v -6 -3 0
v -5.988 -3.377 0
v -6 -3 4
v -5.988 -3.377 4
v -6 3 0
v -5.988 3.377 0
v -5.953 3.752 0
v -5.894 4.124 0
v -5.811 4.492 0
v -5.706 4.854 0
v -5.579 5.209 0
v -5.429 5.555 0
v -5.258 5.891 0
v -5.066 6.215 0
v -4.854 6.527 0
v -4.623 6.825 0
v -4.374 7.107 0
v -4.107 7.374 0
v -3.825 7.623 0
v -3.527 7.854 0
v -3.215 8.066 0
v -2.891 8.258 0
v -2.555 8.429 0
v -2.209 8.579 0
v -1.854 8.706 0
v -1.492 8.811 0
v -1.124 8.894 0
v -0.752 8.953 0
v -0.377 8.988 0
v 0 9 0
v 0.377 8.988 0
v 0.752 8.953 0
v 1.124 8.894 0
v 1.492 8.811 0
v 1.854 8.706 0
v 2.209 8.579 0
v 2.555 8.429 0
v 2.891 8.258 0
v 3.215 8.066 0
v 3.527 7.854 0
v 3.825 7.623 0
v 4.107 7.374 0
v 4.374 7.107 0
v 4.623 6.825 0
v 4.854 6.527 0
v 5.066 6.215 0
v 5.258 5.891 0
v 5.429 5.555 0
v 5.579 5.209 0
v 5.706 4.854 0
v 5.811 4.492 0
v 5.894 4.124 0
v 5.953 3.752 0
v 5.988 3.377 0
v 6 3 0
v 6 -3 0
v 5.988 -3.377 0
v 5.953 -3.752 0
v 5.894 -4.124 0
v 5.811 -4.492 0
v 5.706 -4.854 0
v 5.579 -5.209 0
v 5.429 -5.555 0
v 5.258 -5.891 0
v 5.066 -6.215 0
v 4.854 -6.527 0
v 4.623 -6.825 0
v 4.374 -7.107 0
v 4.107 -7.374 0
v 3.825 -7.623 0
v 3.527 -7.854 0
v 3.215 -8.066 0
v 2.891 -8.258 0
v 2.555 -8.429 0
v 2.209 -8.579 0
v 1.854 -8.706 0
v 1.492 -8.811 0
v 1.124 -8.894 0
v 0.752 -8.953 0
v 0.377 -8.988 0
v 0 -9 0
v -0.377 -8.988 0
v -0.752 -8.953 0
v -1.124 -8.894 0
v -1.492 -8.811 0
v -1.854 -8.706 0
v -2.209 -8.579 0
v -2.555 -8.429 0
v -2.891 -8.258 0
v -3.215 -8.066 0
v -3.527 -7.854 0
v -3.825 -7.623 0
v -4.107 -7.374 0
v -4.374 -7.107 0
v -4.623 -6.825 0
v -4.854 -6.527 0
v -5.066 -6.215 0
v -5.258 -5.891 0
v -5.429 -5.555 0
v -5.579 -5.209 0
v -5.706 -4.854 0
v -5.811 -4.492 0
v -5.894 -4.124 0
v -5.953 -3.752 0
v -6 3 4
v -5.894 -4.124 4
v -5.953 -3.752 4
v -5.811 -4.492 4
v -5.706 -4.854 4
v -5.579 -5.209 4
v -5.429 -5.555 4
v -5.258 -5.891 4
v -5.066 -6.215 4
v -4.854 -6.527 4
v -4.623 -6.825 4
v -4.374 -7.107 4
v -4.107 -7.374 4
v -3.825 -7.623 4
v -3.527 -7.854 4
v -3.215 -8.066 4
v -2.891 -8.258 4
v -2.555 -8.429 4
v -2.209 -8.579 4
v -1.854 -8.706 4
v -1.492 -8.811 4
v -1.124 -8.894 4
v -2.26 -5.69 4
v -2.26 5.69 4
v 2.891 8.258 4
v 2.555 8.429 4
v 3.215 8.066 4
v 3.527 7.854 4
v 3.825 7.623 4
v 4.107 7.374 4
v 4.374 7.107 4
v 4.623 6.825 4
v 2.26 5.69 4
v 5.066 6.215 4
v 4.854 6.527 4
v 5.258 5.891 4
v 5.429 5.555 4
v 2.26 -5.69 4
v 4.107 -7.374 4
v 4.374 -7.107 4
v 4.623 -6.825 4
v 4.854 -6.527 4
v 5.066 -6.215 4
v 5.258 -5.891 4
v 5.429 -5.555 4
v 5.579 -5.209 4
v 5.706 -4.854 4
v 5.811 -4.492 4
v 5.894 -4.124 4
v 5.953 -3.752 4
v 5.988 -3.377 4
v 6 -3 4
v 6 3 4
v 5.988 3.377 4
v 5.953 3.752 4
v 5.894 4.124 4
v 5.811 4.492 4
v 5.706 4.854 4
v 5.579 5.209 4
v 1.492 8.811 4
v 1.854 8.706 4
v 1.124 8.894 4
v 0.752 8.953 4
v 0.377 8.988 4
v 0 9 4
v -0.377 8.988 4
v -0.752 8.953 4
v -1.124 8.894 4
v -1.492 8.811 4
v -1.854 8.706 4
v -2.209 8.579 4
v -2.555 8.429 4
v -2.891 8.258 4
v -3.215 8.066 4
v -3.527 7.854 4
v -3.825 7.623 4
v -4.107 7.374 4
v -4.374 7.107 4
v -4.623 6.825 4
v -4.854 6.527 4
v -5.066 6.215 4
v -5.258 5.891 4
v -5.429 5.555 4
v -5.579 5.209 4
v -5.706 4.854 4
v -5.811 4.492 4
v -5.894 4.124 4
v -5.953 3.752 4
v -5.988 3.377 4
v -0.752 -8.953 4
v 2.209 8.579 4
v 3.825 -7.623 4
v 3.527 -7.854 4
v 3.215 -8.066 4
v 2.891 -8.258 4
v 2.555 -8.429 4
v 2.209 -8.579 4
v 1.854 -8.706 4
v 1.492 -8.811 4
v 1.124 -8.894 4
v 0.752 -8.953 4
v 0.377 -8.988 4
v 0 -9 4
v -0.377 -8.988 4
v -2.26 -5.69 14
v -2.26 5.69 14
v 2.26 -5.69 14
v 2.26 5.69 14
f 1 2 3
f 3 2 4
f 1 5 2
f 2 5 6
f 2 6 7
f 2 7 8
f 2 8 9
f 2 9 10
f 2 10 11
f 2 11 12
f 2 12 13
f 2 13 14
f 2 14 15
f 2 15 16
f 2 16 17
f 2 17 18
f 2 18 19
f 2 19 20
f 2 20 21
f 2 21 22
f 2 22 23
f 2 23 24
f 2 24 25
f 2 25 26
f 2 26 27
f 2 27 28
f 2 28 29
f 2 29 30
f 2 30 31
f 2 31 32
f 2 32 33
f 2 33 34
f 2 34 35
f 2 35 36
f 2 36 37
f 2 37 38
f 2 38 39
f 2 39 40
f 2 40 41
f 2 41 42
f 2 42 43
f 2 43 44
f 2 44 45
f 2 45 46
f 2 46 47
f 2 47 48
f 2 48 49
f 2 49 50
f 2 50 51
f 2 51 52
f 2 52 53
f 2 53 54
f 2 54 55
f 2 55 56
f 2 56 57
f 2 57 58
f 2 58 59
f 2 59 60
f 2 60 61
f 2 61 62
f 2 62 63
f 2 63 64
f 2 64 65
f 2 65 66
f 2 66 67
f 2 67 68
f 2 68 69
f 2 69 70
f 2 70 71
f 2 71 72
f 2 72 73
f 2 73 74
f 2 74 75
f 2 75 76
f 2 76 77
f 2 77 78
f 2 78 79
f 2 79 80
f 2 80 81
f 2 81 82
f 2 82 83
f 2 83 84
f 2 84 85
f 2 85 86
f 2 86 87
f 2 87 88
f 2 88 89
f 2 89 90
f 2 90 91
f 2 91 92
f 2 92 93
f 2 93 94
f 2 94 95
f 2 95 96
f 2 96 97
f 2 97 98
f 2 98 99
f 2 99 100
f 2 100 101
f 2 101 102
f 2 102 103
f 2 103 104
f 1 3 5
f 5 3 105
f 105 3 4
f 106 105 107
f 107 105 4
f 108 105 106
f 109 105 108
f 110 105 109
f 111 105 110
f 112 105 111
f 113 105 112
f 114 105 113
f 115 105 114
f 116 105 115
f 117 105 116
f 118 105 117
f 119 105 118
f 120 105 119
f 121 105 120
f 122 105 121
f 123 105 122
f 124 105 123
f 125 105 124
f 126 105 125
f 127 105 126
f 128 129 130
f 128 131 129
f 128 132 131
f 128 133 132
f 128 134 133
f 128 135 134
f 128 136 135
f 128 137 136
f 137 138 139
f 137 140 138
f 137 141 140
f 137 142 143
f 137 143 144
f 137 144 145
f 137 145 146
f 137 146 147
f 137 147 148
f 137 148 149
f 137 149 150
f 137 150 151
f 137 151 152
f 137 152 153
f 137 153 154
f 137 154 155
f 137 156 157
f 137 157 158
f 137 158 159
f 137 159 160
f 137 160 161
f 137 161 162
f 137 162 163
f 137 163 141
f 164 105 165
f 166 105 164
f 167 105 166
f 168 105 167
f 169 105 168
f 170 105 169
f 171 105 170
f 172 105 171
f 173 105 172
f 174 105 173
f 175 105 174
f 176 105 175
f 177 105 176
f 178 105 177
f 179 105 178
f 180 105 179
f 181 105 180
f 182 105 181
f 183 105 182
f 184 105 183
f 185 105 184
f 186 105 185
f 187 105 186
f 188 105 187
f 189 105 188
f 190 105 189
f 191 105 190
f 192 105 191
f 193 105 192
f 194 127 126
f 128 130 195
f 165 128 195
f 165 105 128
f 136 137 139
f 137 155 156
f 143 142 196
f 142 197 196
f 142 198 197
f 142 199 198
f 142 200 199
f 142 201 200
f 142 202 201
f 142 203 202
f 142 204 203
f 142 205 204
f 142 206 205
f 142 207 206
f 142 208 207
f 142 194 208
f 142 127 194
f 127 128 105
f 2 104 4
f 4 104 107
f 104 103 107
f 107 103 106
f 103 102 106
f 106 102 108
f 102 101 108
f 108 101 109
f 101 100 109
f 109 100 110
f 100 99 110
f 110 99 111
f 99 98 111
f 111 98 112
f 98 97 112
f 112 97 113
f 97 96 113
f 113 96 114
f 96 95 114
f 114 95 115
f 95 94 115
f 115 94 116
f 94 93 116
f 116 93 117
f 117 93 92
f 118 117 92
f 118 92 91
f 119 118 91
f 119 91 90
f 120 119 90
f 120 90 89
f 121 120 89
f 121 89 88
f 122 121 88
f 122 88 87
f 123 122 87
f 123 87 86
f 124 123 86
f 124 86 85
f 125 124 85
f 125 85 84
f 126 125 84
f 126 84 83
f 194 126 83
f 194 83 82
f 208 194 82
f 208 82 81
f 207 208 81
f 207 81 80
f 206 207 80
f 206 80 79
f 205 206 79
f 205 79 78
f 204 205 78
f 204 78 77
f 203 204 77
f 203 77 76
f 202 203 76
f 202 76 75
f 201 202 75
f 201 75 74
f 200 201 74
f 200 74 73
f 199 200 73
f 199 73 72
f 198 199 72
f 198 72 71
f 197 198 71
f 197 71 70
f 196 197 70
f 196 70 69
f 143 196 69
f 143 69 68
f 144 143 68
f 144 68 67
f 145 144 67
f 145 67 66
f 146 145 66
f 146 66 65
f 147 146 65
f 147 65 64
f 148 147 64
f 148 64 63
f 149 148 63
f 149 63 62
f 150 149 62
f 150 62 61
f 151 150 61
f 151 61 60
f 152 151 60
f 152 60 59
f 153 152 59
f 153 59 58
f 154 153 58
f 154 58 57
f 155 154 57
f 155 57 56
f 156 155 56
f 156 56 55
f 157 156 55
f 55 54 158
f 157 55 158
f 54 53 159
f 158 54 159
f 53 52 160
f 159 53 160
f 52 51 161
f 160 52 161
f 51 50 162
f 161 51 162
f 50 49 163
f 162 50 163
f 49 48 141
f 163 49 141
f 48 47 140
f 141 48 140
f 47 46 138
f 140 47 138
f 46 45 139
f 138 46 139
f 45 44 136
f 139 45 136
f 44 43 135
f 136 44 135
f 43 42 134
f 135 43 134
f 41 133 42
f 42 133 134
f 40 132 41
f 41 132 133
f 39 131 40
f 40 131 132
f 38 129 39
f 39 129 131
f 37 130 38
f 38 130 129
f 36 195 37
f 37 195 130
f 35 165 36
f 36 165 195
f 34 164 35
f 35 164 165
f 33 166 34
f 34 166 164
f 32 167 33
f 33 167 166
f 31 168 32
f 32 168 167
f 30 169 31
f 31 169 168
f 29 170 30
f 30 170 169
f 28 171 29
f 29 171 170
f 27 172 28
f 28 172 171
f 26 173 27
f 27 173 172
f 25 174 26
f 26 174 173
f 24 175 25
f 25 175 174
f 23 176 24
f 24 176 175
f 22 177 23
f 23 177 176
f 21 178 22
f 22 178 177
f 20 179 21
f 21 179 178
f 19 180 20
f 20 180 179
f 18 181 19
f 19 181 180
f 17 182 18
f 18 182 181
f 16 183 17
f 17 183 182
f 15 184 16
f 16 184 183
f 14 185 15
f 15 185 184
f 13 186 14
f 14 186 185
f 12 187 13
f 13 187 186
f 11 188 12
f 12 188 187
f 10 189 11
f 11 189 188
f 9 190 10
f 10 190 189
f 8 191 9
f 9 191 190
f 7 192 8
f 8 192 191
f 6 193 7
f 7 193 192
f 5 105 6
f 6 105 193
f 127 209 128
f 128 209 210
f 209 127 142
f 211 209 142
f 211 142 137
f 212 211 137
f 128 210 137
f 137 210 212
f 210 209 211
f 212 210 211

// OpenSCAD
union() {
translate([0, 0, 8]) cube(size = [4.52, 11.38, 12], center = true);
linear_extrude(height=4) {
	hull() {
		translate([0, -3, 0]) circle(6, $fn = 100);
		translate([0, 3, 0]) circle(6, $fn = 100);
	}
}
}
